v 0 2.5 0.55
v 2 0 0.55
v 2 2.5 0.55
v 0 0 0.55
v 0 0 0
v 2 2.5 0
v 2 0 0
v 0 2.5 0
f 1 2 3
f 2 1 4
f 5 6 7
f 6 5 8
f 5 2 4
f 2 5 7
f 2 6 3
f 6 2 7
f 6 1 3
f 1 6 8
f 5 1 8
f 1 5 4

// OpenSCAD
/* Warning, this is a very basic generator with a lot of approximation 
input data : [TSB, 3UB, 2.0x2.5x0.55mm, 2, , A, C04-21472A]
generated by com.zoubworld.electronics.cad.model3d.Basic
Date : Sun Feb 15 10:50:49 CET 2026
*/

//body
color("black")
translate([0,0,0])
cube([2.0,2.5,0.55], center=false);
